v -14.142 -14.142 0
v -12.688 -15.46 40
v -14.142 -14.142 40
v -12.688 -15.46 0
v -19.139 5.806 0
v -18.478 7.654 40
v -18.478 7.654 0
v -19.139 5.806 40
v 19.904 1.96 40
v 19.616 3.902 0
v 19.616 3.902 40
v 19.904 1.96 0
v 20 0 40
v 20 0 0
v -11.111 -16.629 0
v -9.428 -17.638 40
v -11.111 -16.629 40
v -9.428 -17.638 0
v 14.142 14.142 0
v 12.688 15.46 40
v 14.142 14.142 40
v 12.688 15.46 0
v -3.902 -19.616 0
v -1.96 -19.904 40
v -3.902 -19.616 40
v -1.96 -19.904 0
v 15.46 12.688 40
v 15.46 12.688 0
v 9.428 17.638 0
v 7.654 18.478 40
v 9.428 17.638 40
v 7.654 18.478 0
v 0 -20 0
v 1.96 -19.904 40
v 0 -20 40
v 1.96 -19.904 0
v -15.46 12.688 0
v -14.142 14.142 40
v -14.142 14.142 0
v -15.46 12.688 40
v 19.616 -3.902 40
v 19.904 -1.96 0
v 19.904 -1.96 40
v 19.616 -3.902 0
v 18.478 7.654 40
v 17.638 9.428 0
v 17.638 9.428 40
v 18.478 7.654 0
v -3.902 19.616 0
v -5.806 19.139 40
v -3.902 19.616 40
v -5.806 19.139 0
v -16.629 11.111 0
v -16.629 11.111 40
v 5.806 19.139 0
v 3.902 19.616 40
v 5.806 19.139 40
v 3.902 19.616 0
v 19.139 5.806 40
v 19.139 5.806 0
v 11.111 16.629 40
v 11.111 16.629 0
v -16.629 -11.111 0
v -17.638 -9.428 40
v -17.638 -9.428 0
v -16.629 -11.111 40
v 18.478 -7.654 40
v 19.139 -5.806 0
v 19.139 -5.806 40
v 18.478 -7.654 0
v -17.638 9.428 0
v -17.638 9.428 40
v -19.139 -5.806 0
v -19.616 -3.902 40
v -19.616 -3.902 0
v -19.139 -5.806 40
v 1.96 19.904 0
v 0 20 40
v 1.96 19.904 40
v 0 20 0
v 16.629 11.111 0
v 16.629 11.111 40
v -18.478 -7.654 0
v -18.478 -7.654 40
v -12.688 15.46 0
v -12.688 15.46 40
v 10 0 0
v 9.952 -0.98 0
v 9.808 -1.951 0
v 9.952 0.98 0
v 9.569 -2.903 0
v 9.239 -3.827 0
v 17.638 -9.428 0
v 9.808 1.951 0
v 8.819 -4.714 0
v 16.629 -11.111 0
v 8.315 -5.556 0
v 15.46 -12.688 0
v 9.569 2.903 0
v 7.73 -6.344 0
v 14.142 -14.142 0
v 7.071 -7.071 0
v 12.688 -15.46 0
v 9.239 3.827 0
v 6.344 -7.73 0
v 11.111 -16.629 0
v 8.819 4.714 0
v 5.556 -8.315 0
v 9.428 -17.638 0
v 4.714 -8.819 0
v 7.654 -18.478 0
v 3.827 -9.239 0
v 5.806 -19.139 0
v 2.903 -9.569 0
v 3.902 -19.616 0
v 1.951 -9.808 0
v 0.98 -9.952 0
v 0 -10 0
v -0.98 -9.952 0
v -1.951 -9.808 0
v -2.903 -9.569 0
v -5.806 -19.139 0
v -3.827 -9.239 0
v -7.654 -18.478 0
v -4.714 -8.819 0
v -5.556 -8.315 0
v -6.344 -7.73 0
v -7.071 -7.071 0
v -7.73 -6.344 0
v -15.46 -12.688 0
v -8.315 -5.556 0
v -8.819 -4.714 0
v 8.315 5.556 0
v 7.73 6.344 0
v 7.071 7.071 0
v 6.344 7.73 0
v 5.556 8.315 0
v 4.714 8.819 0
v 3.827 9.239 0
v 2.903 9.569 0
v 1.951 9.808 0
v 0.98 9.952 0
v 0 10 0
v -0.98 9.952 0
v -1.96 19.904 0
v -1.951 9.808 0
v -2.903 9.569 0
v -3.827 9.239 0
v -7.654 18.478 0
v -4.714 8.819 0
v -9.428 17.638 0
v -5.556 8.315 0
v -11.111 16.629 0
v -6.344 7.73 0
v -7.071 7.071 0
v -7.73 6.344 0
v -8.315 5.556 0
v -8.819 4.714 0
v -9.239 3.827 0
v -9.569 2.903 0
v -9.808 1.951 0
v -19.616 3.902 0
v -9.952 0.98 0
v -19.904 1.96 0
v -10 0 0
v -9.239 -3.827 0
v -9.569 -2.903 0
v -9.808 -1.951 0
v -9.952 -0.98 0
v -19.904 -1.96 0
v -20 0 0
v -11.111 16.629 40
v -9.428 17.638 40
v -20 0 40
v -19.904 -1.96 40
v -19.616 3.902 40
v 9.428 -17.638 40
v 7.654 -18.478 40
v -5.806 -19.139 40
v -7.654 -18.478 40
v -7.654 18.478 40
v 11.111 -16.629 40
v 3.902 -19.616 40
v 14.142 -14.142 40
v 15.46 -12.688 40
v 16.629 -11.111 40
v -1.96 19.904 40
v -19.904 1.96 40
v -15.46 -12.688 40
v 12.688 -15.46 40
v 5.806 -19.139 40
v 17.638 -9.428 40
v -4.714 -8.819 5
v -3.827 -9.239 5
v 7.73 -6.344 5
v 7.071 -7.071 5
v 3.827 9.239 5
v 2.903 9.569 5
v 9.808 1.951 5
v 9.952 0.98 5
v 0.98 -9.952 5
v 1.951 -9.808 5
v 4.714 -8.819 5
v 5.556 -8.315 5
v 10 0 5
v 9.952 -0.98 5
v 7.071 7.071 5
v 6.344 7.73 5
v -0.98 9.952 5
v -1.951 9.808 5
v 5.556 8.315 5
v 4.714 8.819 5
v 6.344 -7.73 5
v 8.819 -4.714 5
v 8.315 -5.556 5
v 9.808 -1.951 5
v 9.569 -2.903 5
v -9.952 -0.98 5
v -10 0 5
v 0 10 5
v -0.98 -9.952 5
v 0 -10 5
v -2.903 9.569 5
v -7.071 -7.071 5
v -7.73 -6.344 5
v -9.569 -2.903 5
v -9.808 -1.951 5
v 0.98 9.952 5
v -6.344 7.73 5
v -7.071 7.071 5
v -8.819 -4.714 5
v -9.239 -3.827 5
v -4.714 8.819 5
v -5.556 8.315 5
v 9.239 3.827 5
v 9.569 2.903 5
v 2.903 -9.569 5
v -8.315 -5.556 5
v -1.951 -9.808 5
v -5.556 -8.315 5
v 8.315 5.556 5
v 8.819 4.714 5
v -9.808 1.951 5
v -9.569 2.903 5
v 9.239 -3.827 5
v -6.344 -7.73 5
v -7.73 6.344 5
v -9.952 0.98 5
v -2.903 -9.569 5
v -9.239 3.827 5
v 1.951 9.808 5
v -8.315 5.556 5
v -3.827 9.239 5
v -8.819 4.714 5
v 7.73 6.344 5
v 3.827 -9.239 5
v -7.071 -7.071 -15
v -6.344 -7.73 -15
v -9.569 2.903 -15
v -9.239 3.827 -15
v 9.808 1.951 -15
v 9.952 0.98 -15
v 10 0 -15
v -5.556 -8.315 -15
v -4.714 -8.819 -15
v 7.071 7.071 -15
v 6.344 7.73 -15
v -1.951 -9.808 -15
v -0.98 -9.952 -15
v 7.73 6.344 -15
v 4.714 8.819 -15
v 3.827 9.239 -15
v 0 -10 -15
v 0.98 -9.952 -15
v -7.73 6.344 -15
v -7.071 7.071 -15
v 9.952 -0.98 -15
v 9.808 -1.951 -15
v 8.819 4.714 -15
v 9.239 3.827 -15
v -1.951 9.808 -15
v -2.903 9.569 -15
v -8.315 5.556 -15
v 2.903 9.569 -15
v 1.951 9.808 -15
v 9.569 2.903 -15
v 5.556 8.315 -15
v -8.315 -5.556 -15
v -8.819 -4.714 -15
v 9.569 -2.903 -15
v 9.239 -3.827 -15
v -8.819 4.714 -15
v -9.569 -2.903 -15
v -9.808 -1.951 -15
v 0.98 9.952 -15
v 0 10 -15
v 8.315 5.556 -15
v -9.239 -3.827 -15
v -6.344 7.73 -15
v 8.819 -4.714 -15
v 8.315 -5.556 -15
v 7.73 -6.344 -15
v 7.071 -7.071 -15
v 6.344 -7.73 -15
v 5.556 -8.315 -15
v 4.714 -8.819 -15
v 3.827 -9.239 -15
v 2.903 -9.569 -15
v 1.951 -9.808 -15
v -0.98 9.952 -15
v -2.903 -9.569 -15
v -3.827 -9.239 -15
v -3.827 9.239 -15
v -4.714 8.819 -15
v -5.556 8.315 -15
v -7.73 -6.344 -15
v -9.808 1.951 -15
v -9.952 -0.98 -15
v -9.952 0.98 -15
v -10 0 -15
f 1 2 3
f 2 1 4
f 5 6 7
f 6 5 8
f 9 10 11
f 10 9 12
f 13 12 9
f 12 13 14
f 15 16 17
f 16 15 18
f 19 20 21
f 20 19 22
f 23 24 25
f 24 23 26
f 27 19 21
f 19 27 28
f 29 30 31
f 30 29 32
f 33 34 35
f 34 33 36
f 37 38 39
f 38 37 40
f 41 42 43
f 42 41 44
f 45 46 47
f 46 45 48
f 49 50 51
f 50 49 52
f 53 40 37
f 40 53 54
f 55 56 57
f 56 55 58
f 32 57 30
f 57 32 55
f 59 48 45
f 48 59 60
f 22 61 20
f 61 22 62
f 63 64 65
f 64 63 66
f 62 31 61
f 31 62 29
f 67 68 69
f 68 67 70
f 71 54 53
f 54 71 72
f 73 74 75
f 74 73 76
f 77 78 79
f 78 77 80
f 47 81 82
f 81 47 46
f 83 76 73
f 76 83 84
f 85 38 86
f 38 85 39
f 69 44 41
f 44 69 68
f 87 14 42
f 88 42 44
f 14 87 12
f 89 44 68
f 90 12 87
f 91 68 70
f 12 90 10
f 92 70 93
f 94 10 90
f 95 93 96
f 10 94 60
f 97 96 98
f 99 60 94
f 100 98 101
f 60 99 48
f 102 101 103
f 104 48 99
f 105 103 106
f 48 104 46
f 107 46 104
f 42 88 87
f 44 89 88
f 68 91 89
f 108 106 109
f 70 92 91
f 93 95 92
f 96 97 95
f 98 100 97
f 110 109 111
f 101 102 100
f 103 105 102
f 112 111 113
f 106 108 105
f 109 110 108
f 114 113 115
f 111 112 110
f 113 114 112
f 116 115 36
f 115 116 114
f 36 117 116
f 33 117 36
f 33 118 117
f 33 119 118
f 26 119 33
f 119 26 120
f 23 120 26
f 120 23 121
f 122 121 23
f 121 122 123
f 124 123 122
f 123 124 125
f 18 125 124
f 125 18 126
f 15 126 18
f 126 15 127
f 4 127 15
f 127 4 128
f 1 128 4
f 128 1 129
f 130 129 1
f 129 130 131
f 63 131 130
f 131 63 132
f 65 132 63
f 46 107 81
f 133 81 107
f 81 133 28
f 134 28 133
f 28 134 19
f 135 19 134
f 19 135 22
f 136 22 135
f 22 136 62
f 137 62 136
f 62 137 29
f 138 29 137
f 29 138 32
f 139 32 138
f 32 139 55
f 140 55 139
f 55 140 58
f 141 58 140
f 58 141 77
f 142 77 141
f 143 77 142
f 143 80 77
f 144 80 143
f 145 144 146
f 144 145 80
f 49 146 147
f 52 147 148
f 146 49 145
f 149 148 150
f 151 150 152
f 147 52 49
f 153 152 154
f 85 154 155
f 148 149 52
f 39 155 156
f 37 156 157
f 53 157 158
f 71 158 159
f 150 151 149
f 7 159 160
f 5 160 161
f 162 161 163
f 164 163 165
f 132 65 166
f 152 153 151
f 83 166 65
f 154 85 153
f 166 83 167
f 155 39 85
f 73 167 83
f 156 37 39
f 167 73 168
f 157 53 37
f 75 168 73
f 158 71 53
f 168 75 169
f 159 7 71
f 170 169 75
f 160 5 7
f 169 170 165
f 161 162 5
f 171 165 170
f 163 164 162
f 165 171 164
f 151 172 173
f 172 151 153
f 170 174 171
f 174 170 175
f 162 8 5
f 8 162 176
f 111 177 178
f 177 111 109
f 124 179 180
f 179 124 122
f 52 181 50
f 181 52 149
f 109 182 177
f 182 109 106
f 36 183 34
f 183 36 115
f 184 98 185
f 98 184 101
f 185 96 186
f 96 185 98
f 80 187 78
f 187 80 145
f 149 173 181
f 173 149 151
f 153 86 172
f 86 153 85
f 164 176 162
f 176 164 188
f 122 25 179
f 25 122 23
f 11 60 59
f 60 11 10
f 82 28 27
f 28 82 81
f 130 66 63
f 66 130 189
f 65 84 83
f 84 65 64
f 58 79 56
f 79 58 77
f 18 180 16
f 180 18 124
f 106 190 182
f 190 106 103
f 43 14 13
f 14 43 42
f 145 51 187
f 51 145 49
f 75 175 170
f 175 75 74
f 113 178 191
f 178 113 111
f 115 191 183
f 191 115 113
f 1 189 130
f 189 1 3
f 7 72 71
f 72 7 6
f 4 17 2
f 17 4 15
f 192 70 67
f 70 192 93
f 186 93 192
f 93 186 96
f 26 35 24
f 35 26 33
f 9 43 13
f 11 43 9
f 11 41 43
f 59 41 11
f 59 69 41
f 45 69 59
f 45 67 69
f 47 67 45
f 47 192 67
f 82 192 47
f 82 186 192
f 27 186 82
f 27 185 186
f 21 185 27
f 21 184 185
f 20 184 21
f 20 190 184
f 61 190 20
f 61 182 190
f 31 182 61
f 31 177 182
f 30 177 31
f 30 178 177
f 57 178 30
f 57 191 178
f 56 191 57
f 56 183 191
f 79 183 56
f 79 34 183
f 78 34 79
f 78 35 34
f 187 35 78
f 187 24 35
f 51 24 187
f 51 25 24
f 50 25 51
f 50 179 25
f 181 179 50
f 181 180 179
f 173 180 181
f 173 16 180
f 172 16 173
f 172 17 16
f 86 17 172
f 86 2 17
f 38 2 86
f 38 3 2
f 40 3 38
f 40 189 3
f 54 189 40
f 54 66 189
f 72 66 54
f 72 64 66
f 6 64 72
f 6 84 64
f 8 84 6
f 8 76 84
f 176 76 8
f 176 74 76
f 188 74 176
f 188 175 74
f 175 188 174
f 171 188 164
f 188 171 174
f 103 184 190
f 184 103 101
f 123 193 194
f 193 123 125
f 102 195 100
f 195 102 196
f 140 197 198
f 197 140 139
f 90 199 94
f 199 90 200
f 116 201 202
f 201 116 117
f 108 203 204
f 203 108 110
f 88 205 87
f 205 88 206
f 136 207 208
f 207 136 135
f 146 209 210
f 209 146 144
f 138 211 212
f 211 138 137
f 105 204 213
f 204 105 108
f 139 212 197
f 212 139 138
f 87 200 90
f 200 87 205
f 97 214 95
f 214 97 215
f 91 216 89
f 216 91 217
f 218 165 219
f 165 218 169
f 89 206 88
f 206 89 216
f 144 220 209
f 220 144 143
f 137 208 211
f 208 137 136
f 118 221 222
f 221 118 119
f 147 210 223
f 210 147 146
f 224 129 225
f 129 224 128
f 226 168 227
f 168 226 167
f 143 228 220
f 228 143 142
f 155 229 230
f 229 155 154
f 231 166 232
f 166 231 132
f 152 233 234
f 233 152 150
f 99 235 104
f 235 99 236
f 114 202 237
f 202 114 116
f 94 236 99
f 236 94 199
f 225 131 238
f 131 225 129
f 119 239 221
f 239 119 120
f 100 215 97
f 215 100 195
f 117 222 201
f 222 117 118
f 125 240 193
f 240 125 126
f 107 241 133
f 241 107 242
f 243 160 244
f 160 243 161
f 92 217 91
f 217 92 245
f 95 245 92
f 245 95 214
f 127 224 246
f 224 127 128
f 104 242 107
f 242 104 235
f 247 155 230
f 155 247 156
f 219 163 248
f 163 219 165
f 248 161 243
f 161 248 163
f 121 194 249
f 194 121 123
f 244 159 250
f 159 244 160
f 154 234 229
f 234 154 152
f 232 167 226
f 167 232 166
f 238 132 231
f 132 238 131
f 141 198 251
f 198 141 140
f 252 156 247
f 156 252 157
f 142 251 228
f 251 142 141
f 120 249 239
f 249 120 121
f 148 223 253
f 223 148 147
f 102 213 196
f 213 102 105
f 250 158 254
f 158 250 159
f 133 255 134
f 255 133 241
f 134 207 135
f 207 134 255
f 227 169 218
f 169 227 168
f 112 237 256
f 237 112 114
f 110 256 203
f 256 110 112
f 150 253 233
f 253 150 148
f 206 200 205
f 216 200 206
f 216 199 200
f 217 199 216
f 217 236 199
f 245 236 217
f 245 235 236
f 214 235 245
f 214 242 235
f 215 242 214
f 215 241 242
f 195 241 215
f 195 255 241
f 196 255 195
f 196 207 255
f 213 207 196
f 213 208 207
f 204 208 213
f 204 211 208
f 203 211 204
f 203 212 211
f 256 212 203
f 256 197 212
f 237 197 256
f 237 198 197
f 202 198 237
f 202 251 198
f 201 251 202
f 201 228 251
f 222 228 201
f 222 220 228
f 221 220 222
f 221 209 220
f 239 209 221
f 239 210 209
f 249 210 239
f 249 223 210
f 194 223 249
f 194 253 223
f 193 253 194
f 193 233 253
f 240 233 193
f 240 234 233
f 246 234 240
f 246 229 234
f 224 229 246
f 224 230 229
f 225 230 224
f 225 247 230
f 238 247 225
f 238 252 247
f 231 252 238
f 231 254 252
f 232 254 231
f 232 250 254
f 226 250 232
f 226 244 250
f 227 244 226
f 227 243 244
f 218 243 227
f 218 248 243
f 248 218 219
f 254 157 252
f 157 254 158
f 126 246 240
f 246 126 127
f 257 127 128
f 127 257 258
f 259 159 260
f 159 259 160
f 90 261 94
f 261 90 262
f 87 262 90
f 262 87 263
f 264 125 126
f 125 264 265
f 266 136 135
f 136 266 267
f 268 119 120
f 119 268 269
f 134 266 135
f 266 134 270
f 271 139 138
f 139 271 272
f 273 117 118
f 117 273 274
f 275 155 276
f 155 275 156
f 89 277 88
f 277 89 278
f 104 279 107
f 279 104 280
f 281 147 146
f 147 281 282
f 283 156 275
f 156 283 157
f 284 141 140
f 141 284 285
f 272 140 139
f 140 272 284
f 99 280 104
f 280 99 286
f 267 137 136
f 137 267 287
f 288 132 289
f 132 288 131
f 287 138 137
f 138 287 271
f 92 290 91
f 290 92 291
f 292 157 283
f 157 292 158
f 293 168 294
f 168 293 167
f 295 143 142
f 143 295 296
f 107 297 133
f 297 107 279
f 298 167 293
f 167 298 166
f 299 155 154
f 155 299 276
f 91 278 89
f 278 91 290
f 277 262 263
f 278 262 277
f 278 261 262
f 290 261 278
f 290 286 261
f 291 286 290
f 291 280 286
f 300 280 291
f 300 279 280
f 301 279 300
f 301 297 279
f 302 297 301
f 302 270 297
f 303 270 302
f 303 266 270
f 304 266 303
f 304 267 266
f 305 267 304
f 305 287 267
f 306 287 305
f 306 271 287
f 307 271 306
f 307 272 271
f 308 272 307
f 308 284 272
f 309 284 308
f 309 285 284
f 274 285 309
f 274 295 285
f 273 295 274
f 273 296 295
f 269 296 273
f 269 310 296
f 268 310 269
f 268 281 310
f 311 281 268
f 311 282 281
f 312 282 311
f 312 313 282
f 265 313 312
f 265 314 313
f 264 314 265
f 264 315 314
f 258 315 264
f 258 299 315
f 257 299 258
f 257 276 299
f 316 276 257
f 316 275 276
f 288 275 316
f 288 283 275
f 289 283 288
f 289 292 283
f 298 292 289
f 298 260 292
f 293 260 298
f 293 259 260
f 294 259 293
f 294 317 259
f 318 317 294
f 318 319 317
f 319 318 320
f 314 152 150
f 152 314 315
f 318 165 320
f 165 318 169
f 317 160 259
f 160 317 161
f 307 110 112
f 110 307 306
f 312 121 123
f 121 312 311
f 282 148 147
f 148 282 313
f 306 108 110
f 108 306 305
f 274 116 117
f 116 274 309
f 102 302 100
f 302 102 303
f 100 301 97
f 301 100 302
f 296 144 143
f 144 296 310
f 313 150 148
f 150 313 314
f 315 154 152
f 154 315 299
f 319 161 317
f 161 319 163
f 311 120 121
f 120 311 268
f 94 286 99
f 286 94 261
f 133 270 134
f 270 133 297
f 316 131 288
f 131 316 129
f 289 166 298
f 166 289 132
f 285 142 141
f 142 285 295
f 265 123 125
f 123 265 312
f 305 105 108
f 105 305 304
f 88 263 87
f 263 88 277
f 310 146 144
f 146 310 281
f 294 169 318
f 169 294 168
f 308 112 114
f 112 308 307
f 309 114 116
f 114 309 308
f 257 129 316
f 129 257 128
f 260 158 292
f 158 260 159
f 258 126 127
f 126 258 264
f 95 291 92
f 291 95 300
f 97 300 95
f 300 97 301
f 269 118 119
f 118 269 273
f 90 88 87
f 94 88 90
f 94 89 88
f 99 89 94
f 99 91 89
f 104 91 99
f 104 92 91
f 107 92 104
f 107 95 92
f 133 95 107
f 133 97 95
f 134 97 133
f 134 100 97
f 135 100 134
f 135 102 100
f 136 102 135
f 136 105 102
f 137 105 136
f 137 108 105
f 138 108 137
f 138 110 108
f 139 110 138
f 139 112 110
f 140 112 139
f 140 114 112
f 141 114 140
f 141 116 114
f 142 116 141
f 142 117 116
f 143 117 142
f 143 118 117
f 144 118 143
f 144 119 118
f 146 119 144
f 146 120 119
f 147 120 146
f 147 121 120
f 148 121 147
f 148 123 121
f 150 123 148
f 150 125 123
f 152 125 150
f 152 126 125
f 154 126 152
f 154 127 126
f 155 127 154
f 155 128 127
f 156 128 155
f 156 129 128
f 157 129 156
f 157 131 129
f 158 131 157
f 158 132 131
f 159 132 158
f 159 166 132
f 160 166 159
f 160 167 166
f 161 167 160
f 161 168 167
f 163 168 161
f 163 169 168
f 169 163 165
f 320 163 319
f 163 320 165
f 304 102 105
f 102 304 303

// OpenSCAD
// Parameters
outer_diameter = 40;
outer_height = 40;

shaft_diameter = 20;
shaft_height = 15;
recess_depth = 5;

// Outer cylinder (main body)
module outer_cylinder() {
    difference() {
        cylinder(d=outer_diameter, h=outer_height, $fn=64);
        // Recessed cavity at the bottom
        translate([0, 0, 0])
            cylinder(d=shaft_diameter, h=recess_depth, $fn=64);
    }
}

// Inner shaft
module inner_shaft() {
    translate([0, 0, -shaft_height])
        cylinder(d=shaft_diameter, h=shaft_height, $fn=64);
}

// Assembly
union() {
    outer_cylinder();
    inner_shaft();
}
